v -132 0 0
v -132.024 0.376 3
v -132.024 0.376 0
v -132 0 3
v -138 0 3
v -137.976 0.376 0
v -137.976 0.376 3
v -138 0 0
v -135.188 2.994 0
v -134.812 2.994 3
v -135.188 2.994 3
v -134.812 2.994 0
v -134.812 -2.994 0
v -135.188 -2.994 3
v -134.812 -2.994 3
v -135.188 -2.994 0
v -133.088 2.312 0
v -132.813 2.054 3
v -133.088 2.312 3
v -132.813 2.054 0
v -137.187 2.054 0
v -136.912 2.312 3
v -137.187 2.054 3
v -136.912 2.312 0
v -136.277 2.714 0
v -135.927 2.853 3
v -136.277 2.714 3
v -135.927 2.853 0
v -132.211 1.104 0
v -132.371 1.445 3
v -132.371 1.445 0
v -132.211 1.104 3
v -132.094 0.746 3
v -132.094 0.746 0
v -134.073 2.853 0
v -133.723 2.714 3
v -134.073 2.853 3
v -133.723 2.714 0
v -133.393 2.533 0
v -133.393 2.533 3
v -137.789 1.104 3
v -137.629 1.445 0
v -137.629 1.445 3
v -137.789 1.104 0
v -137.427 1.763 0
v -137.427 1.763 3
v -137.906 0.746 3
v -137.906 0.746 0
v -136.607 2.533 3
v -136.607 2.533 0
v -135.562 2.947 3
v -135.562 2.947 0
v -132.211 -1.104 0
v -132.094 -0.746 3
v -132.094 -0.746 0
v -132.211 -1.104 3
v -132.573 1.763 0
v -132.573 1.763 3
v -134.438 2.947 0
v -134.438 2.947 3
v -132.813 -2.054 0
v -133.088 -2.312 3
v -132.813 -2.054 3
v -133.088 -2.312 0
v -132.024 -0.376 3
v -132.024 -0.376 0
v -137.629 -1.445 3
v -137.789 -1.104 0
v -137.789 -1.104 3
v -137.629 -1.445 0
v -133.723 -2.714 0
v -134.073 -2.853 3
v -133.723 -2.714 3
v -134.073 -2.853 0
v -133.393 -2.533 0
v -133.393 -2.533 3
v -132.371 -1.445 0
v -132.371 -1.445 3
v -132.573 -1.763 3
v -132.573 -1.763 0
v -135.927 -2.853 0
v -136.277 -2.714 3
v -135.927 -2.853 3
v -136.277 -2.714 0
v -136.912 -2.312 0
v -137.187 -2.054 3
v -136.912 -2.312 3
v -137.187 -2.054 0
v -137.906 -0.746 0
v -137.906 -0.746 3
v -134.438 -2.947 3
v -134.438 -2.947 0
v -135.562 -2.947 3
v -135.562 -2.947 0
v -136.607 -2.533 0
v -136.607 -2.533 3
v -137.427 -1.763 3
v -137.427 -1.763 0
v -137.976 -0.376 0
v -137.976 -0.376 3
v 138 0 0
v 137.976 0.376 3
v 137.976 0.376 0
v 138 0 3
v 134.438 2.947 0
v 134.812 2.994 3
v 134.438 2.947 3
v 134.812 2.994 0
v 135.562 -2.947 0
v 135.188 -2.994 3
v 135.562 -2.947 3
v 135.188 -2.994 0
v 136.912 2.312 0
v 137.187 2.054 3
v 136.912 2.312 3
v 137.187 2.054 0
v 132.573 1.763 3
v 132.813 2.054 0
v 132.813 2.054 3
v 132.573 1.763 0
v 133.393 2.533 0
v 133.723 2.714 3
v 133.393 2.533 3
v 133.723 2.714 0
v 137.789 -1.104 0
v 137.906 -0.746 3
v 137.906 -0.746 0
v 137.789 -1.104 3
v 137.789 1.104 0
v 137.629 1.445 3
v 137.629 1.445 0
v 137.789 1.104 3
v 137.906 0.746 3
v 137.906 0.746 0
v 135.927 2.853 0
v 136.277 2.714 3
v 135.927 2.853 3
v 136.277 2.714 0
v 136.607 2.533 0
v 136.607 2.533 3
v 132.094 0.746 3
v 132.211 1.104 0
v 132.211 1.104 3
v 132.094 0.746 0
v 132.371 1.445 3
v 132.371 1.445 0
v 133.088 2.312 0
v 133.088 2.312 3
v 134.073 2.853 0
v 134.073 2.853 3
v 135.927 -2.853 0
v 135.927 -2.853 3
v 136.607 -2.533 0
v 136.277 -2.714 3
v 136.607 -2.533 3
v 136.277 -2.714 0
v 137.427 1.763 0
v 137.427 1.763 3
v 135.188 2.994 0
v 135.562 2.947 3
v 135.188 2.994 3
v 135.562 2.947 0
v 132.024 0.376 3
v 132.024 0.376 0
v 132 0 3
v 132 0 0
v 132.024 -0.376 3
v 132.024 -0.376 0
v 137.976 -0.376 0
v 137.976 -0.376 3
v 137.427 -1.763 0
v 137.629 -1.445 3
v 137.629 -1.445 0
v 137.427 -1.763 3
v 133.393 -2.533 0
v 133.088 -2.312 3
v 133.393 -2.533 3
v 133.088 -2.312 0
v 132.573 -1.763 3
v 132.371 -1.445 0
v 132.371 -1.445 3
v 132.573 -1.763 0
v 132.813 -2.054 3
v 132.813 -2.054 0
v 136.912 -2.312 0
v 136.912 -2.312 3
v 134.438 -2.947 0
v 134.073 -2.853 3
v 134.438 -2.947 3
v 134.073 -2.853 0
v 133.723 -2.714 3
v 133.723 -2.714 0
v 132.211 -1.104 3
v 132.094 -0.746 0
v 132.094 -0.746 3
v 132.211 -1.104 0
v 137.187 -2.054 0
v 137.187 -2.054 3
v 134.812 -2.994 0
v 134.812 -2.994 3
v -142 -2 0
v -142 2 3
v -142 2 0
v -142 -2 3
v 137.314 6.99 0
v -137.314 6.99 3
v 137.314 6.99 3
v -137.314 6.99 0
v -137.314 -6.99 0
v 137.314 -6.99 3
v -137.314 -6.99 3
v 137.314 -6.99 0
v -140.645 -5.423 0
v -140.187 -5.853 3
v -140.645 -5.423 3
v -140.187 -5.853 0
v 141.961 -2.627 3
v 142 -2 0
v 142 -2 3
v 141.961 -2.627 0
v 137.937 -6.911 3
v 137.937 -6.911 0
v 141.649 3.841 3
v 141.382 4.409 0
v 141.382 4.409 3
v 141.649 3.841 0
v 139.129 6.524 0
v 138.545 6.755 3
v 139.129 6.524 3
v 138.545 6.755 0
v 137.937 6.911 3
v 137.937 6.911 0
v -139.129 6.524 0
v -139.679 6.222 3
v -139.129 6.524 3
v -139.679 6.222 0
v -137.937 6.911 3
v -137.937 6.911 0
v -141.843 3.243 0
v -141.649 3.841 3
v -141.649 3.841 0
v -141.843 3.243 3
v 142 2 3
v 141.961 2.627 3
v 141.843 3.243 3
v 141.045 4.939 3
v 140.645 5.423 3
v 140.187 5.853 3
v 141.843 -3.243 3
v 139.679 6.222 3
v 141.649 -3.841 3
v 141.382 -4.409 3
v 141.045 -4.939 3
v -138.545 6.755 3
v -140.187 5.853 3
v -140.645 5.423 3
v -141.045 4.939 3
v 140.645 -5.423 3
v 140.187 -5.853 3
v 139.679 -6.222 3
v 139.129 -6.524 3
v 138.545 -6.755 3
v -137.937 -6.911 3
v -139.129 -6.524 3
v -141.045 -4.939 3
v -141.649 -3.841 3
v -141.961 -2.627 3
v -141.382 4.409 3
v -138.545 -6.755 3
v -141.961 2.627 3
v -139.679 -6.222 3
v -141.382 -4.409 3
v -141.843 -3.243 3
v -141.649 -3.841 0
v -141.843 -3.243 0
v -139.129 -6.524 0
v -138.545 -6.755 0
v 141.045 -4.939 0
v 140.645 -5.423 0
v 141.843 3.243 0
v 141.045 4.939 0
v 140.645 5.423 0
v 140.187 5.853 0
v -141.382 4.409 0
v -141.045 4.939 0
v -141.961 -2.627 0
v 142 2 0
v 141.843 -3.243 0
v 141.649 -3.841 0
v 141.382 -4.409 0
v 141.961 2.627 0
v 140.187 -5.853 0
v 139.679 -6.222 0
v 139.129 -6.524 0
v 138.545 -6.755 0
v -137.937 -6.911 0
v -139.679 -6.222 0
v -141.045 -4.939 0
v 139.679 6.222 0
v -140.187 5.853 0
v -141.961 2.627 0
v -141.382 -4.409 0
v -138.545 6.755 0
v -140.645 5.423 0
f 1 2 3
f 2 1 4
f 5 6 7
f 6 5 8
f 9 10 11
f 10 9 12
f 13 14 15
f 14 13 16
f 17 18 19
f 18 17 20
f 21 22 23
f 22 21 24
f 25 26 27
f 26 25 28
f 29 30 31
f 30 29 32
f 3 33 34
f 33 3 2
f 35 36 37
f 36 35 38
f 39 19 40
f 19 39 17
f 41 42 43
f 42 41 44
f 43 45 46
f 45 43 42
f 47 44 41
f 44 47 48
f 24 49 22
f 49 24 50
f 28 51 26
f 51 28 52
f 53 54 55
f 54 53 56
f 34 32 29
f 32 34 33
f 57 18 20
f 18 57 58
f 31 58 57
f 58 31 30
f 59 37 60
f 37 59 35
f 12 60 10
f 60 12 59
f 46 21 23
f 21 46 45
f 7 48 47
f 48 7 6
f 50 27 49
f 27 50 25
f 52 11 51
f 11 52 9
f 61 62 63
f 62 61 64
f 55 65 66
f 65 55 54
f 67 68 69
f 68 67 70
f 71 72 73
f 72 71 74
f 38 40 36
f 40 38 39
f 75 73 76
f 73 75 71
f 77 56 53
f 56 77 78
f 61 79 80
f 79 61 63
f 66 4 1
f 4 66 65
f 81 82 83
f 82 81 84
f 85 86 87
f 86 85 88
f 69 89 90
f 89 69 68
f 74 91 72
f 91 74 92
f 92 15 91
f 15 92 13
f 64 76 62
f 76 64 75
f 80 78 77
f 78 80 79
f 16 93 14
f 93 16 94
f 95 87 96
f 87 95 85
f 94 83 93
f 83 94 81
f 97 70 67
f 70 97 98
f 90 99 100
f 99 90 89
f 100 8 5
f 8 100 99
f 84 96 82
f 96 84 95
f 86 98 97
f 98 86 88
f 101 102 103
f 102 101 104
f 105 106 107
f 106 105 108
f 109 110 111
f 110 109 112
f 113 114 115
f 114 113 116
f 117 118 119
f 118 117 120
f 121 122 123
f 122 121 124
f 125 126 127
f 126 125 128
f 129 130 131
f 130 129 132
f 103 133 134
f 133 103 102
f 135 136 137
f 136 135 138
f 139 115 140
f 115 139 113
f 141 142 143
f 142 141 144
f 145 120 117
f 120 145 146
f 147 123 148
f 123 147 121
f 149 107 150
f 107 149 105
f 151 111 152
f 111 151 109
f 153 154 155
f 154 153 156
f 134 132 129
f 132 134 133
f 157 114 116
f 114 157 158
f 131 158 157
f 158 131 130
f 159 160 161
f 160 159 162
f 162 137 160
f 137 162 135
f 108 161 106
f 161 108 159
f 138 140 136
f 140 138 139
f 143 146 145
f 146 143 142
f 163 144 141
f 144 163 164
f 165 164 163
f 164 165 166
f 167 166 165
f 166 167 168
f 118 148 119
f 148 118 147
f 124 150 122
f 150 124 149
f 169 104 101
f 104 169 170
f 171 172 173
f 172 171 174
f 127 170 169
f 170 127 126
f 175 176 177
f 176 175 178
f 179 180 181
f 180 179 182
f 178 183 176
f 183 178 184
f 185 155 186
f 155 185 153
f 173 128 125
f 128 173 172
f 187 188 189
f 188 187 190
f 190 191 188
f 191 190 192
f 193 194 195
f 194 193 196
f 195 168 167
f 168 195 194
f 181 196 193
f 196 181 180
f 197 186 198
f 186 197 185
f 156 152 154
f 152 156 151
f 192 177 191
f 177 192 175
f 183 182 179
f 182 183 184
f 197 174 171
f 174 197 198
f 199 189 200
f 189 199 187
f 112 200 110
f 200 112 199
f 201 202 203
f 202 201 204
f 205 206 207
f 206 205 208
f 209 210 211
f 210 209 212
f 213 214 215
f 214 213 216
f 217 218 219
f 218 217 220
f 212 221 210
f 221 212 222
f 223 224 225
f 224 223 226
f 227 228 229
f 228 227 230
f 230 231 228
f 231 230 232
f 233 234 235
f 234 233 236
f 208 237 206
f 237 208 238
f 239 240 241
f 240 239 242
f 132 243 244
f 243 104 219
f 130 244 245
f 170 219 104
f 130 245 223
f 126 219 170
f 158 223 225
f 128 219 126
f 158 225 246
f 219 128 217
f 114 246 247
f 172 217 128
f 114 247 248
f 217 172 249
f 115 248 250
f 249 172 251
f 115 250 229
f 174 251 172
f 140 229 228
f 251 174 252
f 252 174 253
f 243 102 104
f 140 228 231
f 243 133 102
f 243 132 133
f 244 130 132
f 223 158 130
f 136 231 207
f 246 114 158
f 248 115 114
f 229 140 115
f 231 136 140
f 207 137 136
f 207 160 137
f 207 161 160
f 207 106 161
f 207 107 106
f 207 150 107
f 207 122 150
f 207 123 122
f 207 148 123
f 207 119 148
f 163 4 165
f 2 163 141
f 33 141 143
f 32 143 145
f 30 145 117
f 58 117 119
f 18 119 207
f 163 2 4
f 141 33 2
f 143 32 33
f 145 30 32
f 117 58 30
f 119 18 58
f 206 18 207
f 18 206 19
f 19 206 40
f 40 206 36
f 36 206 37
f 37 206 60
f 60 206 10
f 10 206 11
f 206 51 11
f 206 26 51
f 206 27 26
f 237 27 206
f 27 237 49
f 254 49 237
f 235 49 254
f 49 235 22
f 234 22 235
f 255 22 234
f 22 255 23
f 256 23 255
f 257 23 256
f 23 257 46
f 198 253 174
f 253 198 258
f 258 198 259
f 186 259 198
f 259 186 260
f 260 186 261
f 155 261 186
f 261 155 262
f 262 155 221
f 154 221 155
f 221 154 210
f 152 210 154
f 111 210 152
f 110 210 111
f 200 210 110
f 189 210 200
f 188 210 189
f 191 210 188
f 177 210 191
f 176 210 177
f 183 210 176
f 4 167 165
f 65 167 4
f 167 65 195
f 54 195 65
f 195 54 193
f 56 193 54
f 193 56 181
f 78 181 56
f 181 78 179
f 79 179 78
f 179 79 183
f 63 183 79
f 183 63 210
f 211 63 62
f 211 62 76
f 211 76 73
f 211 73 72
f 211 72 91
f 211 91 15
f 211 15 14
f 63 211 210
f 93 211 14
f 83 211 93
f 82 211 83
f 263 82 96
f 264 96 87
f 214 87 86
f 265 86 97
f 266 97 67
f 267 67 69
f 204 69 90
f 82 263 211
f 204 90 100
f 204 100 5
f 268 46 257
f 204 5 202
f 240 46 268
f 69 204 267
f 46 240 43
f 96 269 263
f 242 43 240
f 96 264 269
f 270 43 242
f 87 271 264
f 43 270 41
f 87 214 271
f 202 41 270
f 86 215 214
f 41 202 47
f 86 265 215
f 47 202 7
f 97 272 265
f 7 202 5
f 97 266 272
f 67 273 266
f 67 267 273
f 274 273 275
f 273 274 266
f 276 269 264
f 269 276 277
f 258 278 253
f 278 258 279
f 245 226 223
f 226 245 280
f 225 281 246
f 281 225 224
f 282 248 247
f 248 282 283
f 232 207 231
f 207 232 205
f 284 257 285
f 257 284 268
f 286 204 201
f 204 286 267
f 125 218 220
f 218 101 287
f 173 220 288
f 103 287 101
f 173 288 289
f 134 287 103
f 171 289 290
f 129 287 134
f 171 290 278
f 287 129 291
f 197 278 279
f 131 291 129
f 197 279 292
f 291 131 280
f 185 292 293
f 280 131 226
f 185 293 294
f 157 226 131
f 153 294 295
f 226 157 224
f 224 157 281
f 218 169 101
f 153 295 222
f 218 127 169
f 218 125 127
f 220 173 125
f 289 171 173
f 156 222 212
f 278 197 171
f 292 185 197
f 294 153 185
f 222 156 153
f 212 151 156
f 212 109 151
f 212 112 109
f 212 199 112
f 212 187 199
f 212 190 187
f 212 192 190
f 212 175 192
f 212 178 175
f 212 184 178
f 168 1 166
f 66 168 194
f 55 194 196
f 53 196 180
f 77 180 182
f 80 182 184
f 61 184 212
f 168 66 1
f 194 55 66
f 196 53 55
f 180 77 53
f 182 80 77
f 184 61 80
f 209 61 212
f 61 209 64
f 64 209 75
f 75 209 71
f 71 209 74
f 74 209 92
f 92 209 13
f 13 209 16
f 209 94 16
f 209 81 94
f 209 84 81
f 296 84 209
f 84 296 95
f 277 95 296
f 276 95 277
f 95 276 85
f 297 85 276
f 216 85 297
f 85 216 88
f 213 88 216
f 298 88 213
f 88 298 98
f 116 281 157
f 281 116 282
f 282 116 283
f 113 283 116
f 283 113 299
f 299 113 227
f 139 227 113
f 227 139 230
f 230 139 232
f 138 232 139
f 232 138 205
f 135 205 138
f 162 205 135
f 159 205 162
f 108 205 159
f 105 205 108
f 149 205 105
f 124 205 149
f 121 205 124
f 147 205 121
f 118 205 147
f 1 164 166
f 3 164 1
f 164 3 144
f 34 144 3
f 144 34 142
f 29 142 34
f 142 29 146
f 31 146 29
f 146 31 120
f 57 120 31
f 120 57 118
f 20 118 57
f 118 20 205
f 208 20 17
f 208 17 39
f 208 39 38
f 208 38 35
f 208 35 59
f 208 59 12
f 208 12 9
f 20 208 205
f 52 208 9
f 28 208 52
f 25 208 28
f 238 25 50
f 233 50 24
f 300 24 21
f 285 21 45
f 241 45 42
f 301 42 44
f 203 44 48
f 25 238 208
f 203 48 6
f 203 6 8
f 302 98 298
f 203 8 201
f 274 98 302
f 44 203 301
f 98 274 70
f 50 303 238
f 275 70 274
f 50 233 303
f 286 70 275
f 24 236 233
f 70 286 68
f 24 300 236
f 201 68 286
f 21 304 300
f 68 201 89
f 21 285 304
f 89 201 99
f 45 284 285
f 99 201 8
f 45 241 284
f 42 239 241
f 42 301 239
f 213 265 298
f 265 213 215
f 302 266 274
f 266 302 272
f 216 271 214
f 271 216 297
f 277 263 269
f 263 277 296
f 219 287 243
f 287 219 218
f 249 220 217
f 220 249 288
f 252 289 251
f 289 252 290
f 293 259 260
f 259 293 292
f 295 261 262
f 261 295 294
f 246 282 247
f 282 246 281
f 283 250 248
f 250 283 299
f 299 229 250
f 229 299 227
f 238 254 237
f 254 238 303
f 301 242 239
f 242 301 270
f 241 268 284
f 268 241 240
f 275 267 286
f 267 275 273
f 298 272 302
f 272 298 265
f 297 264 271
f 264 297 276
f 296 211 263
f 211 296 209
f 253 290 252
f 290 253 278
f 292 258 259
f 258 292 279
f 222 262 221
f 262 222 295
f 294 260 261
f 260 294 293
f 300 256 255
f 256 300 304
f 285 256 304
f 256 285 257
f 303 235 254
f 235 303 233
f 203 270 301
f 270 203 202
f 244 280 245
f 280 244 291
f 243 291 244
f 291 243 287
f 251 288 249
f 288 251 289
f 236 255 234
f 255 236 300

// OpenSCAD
$fn = 50;


difference() {
	union() {
		hull() {
			translate(v = [-137.0000000000, 2.0000000000, 0]) {
				cylinder(h = 3, r = 5);
			}
			translate(v = [137.0000000000, 2.0000000000, 0]) {
				cylinder(h = 3, r = 5);
			}
			translate(v = [-137.0000000000, -2.0000000000, 0]) {
				cylinder(h = 3, r = 5);
			}
			translate(v = [137.0000000000, -2.0000000000, 0]) {
				cylinder(h = 3, r = 5);
			}
		}
	}
	union() {
		translate(v = [-135.0000000000, 0.0000000000, -100.0000000000]) {
			cylinder(h = 200, r = 3.0000000000);
		}
		translate(v = [-135.0000000000, 0.0000000000, -100.0000000000]) {
			cylinder(h = 200, r = 3.0000000000);
		}
		translate(v = [135.0000000000, 0.0000000000, -100.0000000000]) {
			cylinder(h = 200, r = 3.0000000000);
		}
		translate(v = [135.0000000000, 0.0000000000, -100.0000000000]) {
			cylinder(h = 200, r = 3.0000000000);
		}
	}
}
